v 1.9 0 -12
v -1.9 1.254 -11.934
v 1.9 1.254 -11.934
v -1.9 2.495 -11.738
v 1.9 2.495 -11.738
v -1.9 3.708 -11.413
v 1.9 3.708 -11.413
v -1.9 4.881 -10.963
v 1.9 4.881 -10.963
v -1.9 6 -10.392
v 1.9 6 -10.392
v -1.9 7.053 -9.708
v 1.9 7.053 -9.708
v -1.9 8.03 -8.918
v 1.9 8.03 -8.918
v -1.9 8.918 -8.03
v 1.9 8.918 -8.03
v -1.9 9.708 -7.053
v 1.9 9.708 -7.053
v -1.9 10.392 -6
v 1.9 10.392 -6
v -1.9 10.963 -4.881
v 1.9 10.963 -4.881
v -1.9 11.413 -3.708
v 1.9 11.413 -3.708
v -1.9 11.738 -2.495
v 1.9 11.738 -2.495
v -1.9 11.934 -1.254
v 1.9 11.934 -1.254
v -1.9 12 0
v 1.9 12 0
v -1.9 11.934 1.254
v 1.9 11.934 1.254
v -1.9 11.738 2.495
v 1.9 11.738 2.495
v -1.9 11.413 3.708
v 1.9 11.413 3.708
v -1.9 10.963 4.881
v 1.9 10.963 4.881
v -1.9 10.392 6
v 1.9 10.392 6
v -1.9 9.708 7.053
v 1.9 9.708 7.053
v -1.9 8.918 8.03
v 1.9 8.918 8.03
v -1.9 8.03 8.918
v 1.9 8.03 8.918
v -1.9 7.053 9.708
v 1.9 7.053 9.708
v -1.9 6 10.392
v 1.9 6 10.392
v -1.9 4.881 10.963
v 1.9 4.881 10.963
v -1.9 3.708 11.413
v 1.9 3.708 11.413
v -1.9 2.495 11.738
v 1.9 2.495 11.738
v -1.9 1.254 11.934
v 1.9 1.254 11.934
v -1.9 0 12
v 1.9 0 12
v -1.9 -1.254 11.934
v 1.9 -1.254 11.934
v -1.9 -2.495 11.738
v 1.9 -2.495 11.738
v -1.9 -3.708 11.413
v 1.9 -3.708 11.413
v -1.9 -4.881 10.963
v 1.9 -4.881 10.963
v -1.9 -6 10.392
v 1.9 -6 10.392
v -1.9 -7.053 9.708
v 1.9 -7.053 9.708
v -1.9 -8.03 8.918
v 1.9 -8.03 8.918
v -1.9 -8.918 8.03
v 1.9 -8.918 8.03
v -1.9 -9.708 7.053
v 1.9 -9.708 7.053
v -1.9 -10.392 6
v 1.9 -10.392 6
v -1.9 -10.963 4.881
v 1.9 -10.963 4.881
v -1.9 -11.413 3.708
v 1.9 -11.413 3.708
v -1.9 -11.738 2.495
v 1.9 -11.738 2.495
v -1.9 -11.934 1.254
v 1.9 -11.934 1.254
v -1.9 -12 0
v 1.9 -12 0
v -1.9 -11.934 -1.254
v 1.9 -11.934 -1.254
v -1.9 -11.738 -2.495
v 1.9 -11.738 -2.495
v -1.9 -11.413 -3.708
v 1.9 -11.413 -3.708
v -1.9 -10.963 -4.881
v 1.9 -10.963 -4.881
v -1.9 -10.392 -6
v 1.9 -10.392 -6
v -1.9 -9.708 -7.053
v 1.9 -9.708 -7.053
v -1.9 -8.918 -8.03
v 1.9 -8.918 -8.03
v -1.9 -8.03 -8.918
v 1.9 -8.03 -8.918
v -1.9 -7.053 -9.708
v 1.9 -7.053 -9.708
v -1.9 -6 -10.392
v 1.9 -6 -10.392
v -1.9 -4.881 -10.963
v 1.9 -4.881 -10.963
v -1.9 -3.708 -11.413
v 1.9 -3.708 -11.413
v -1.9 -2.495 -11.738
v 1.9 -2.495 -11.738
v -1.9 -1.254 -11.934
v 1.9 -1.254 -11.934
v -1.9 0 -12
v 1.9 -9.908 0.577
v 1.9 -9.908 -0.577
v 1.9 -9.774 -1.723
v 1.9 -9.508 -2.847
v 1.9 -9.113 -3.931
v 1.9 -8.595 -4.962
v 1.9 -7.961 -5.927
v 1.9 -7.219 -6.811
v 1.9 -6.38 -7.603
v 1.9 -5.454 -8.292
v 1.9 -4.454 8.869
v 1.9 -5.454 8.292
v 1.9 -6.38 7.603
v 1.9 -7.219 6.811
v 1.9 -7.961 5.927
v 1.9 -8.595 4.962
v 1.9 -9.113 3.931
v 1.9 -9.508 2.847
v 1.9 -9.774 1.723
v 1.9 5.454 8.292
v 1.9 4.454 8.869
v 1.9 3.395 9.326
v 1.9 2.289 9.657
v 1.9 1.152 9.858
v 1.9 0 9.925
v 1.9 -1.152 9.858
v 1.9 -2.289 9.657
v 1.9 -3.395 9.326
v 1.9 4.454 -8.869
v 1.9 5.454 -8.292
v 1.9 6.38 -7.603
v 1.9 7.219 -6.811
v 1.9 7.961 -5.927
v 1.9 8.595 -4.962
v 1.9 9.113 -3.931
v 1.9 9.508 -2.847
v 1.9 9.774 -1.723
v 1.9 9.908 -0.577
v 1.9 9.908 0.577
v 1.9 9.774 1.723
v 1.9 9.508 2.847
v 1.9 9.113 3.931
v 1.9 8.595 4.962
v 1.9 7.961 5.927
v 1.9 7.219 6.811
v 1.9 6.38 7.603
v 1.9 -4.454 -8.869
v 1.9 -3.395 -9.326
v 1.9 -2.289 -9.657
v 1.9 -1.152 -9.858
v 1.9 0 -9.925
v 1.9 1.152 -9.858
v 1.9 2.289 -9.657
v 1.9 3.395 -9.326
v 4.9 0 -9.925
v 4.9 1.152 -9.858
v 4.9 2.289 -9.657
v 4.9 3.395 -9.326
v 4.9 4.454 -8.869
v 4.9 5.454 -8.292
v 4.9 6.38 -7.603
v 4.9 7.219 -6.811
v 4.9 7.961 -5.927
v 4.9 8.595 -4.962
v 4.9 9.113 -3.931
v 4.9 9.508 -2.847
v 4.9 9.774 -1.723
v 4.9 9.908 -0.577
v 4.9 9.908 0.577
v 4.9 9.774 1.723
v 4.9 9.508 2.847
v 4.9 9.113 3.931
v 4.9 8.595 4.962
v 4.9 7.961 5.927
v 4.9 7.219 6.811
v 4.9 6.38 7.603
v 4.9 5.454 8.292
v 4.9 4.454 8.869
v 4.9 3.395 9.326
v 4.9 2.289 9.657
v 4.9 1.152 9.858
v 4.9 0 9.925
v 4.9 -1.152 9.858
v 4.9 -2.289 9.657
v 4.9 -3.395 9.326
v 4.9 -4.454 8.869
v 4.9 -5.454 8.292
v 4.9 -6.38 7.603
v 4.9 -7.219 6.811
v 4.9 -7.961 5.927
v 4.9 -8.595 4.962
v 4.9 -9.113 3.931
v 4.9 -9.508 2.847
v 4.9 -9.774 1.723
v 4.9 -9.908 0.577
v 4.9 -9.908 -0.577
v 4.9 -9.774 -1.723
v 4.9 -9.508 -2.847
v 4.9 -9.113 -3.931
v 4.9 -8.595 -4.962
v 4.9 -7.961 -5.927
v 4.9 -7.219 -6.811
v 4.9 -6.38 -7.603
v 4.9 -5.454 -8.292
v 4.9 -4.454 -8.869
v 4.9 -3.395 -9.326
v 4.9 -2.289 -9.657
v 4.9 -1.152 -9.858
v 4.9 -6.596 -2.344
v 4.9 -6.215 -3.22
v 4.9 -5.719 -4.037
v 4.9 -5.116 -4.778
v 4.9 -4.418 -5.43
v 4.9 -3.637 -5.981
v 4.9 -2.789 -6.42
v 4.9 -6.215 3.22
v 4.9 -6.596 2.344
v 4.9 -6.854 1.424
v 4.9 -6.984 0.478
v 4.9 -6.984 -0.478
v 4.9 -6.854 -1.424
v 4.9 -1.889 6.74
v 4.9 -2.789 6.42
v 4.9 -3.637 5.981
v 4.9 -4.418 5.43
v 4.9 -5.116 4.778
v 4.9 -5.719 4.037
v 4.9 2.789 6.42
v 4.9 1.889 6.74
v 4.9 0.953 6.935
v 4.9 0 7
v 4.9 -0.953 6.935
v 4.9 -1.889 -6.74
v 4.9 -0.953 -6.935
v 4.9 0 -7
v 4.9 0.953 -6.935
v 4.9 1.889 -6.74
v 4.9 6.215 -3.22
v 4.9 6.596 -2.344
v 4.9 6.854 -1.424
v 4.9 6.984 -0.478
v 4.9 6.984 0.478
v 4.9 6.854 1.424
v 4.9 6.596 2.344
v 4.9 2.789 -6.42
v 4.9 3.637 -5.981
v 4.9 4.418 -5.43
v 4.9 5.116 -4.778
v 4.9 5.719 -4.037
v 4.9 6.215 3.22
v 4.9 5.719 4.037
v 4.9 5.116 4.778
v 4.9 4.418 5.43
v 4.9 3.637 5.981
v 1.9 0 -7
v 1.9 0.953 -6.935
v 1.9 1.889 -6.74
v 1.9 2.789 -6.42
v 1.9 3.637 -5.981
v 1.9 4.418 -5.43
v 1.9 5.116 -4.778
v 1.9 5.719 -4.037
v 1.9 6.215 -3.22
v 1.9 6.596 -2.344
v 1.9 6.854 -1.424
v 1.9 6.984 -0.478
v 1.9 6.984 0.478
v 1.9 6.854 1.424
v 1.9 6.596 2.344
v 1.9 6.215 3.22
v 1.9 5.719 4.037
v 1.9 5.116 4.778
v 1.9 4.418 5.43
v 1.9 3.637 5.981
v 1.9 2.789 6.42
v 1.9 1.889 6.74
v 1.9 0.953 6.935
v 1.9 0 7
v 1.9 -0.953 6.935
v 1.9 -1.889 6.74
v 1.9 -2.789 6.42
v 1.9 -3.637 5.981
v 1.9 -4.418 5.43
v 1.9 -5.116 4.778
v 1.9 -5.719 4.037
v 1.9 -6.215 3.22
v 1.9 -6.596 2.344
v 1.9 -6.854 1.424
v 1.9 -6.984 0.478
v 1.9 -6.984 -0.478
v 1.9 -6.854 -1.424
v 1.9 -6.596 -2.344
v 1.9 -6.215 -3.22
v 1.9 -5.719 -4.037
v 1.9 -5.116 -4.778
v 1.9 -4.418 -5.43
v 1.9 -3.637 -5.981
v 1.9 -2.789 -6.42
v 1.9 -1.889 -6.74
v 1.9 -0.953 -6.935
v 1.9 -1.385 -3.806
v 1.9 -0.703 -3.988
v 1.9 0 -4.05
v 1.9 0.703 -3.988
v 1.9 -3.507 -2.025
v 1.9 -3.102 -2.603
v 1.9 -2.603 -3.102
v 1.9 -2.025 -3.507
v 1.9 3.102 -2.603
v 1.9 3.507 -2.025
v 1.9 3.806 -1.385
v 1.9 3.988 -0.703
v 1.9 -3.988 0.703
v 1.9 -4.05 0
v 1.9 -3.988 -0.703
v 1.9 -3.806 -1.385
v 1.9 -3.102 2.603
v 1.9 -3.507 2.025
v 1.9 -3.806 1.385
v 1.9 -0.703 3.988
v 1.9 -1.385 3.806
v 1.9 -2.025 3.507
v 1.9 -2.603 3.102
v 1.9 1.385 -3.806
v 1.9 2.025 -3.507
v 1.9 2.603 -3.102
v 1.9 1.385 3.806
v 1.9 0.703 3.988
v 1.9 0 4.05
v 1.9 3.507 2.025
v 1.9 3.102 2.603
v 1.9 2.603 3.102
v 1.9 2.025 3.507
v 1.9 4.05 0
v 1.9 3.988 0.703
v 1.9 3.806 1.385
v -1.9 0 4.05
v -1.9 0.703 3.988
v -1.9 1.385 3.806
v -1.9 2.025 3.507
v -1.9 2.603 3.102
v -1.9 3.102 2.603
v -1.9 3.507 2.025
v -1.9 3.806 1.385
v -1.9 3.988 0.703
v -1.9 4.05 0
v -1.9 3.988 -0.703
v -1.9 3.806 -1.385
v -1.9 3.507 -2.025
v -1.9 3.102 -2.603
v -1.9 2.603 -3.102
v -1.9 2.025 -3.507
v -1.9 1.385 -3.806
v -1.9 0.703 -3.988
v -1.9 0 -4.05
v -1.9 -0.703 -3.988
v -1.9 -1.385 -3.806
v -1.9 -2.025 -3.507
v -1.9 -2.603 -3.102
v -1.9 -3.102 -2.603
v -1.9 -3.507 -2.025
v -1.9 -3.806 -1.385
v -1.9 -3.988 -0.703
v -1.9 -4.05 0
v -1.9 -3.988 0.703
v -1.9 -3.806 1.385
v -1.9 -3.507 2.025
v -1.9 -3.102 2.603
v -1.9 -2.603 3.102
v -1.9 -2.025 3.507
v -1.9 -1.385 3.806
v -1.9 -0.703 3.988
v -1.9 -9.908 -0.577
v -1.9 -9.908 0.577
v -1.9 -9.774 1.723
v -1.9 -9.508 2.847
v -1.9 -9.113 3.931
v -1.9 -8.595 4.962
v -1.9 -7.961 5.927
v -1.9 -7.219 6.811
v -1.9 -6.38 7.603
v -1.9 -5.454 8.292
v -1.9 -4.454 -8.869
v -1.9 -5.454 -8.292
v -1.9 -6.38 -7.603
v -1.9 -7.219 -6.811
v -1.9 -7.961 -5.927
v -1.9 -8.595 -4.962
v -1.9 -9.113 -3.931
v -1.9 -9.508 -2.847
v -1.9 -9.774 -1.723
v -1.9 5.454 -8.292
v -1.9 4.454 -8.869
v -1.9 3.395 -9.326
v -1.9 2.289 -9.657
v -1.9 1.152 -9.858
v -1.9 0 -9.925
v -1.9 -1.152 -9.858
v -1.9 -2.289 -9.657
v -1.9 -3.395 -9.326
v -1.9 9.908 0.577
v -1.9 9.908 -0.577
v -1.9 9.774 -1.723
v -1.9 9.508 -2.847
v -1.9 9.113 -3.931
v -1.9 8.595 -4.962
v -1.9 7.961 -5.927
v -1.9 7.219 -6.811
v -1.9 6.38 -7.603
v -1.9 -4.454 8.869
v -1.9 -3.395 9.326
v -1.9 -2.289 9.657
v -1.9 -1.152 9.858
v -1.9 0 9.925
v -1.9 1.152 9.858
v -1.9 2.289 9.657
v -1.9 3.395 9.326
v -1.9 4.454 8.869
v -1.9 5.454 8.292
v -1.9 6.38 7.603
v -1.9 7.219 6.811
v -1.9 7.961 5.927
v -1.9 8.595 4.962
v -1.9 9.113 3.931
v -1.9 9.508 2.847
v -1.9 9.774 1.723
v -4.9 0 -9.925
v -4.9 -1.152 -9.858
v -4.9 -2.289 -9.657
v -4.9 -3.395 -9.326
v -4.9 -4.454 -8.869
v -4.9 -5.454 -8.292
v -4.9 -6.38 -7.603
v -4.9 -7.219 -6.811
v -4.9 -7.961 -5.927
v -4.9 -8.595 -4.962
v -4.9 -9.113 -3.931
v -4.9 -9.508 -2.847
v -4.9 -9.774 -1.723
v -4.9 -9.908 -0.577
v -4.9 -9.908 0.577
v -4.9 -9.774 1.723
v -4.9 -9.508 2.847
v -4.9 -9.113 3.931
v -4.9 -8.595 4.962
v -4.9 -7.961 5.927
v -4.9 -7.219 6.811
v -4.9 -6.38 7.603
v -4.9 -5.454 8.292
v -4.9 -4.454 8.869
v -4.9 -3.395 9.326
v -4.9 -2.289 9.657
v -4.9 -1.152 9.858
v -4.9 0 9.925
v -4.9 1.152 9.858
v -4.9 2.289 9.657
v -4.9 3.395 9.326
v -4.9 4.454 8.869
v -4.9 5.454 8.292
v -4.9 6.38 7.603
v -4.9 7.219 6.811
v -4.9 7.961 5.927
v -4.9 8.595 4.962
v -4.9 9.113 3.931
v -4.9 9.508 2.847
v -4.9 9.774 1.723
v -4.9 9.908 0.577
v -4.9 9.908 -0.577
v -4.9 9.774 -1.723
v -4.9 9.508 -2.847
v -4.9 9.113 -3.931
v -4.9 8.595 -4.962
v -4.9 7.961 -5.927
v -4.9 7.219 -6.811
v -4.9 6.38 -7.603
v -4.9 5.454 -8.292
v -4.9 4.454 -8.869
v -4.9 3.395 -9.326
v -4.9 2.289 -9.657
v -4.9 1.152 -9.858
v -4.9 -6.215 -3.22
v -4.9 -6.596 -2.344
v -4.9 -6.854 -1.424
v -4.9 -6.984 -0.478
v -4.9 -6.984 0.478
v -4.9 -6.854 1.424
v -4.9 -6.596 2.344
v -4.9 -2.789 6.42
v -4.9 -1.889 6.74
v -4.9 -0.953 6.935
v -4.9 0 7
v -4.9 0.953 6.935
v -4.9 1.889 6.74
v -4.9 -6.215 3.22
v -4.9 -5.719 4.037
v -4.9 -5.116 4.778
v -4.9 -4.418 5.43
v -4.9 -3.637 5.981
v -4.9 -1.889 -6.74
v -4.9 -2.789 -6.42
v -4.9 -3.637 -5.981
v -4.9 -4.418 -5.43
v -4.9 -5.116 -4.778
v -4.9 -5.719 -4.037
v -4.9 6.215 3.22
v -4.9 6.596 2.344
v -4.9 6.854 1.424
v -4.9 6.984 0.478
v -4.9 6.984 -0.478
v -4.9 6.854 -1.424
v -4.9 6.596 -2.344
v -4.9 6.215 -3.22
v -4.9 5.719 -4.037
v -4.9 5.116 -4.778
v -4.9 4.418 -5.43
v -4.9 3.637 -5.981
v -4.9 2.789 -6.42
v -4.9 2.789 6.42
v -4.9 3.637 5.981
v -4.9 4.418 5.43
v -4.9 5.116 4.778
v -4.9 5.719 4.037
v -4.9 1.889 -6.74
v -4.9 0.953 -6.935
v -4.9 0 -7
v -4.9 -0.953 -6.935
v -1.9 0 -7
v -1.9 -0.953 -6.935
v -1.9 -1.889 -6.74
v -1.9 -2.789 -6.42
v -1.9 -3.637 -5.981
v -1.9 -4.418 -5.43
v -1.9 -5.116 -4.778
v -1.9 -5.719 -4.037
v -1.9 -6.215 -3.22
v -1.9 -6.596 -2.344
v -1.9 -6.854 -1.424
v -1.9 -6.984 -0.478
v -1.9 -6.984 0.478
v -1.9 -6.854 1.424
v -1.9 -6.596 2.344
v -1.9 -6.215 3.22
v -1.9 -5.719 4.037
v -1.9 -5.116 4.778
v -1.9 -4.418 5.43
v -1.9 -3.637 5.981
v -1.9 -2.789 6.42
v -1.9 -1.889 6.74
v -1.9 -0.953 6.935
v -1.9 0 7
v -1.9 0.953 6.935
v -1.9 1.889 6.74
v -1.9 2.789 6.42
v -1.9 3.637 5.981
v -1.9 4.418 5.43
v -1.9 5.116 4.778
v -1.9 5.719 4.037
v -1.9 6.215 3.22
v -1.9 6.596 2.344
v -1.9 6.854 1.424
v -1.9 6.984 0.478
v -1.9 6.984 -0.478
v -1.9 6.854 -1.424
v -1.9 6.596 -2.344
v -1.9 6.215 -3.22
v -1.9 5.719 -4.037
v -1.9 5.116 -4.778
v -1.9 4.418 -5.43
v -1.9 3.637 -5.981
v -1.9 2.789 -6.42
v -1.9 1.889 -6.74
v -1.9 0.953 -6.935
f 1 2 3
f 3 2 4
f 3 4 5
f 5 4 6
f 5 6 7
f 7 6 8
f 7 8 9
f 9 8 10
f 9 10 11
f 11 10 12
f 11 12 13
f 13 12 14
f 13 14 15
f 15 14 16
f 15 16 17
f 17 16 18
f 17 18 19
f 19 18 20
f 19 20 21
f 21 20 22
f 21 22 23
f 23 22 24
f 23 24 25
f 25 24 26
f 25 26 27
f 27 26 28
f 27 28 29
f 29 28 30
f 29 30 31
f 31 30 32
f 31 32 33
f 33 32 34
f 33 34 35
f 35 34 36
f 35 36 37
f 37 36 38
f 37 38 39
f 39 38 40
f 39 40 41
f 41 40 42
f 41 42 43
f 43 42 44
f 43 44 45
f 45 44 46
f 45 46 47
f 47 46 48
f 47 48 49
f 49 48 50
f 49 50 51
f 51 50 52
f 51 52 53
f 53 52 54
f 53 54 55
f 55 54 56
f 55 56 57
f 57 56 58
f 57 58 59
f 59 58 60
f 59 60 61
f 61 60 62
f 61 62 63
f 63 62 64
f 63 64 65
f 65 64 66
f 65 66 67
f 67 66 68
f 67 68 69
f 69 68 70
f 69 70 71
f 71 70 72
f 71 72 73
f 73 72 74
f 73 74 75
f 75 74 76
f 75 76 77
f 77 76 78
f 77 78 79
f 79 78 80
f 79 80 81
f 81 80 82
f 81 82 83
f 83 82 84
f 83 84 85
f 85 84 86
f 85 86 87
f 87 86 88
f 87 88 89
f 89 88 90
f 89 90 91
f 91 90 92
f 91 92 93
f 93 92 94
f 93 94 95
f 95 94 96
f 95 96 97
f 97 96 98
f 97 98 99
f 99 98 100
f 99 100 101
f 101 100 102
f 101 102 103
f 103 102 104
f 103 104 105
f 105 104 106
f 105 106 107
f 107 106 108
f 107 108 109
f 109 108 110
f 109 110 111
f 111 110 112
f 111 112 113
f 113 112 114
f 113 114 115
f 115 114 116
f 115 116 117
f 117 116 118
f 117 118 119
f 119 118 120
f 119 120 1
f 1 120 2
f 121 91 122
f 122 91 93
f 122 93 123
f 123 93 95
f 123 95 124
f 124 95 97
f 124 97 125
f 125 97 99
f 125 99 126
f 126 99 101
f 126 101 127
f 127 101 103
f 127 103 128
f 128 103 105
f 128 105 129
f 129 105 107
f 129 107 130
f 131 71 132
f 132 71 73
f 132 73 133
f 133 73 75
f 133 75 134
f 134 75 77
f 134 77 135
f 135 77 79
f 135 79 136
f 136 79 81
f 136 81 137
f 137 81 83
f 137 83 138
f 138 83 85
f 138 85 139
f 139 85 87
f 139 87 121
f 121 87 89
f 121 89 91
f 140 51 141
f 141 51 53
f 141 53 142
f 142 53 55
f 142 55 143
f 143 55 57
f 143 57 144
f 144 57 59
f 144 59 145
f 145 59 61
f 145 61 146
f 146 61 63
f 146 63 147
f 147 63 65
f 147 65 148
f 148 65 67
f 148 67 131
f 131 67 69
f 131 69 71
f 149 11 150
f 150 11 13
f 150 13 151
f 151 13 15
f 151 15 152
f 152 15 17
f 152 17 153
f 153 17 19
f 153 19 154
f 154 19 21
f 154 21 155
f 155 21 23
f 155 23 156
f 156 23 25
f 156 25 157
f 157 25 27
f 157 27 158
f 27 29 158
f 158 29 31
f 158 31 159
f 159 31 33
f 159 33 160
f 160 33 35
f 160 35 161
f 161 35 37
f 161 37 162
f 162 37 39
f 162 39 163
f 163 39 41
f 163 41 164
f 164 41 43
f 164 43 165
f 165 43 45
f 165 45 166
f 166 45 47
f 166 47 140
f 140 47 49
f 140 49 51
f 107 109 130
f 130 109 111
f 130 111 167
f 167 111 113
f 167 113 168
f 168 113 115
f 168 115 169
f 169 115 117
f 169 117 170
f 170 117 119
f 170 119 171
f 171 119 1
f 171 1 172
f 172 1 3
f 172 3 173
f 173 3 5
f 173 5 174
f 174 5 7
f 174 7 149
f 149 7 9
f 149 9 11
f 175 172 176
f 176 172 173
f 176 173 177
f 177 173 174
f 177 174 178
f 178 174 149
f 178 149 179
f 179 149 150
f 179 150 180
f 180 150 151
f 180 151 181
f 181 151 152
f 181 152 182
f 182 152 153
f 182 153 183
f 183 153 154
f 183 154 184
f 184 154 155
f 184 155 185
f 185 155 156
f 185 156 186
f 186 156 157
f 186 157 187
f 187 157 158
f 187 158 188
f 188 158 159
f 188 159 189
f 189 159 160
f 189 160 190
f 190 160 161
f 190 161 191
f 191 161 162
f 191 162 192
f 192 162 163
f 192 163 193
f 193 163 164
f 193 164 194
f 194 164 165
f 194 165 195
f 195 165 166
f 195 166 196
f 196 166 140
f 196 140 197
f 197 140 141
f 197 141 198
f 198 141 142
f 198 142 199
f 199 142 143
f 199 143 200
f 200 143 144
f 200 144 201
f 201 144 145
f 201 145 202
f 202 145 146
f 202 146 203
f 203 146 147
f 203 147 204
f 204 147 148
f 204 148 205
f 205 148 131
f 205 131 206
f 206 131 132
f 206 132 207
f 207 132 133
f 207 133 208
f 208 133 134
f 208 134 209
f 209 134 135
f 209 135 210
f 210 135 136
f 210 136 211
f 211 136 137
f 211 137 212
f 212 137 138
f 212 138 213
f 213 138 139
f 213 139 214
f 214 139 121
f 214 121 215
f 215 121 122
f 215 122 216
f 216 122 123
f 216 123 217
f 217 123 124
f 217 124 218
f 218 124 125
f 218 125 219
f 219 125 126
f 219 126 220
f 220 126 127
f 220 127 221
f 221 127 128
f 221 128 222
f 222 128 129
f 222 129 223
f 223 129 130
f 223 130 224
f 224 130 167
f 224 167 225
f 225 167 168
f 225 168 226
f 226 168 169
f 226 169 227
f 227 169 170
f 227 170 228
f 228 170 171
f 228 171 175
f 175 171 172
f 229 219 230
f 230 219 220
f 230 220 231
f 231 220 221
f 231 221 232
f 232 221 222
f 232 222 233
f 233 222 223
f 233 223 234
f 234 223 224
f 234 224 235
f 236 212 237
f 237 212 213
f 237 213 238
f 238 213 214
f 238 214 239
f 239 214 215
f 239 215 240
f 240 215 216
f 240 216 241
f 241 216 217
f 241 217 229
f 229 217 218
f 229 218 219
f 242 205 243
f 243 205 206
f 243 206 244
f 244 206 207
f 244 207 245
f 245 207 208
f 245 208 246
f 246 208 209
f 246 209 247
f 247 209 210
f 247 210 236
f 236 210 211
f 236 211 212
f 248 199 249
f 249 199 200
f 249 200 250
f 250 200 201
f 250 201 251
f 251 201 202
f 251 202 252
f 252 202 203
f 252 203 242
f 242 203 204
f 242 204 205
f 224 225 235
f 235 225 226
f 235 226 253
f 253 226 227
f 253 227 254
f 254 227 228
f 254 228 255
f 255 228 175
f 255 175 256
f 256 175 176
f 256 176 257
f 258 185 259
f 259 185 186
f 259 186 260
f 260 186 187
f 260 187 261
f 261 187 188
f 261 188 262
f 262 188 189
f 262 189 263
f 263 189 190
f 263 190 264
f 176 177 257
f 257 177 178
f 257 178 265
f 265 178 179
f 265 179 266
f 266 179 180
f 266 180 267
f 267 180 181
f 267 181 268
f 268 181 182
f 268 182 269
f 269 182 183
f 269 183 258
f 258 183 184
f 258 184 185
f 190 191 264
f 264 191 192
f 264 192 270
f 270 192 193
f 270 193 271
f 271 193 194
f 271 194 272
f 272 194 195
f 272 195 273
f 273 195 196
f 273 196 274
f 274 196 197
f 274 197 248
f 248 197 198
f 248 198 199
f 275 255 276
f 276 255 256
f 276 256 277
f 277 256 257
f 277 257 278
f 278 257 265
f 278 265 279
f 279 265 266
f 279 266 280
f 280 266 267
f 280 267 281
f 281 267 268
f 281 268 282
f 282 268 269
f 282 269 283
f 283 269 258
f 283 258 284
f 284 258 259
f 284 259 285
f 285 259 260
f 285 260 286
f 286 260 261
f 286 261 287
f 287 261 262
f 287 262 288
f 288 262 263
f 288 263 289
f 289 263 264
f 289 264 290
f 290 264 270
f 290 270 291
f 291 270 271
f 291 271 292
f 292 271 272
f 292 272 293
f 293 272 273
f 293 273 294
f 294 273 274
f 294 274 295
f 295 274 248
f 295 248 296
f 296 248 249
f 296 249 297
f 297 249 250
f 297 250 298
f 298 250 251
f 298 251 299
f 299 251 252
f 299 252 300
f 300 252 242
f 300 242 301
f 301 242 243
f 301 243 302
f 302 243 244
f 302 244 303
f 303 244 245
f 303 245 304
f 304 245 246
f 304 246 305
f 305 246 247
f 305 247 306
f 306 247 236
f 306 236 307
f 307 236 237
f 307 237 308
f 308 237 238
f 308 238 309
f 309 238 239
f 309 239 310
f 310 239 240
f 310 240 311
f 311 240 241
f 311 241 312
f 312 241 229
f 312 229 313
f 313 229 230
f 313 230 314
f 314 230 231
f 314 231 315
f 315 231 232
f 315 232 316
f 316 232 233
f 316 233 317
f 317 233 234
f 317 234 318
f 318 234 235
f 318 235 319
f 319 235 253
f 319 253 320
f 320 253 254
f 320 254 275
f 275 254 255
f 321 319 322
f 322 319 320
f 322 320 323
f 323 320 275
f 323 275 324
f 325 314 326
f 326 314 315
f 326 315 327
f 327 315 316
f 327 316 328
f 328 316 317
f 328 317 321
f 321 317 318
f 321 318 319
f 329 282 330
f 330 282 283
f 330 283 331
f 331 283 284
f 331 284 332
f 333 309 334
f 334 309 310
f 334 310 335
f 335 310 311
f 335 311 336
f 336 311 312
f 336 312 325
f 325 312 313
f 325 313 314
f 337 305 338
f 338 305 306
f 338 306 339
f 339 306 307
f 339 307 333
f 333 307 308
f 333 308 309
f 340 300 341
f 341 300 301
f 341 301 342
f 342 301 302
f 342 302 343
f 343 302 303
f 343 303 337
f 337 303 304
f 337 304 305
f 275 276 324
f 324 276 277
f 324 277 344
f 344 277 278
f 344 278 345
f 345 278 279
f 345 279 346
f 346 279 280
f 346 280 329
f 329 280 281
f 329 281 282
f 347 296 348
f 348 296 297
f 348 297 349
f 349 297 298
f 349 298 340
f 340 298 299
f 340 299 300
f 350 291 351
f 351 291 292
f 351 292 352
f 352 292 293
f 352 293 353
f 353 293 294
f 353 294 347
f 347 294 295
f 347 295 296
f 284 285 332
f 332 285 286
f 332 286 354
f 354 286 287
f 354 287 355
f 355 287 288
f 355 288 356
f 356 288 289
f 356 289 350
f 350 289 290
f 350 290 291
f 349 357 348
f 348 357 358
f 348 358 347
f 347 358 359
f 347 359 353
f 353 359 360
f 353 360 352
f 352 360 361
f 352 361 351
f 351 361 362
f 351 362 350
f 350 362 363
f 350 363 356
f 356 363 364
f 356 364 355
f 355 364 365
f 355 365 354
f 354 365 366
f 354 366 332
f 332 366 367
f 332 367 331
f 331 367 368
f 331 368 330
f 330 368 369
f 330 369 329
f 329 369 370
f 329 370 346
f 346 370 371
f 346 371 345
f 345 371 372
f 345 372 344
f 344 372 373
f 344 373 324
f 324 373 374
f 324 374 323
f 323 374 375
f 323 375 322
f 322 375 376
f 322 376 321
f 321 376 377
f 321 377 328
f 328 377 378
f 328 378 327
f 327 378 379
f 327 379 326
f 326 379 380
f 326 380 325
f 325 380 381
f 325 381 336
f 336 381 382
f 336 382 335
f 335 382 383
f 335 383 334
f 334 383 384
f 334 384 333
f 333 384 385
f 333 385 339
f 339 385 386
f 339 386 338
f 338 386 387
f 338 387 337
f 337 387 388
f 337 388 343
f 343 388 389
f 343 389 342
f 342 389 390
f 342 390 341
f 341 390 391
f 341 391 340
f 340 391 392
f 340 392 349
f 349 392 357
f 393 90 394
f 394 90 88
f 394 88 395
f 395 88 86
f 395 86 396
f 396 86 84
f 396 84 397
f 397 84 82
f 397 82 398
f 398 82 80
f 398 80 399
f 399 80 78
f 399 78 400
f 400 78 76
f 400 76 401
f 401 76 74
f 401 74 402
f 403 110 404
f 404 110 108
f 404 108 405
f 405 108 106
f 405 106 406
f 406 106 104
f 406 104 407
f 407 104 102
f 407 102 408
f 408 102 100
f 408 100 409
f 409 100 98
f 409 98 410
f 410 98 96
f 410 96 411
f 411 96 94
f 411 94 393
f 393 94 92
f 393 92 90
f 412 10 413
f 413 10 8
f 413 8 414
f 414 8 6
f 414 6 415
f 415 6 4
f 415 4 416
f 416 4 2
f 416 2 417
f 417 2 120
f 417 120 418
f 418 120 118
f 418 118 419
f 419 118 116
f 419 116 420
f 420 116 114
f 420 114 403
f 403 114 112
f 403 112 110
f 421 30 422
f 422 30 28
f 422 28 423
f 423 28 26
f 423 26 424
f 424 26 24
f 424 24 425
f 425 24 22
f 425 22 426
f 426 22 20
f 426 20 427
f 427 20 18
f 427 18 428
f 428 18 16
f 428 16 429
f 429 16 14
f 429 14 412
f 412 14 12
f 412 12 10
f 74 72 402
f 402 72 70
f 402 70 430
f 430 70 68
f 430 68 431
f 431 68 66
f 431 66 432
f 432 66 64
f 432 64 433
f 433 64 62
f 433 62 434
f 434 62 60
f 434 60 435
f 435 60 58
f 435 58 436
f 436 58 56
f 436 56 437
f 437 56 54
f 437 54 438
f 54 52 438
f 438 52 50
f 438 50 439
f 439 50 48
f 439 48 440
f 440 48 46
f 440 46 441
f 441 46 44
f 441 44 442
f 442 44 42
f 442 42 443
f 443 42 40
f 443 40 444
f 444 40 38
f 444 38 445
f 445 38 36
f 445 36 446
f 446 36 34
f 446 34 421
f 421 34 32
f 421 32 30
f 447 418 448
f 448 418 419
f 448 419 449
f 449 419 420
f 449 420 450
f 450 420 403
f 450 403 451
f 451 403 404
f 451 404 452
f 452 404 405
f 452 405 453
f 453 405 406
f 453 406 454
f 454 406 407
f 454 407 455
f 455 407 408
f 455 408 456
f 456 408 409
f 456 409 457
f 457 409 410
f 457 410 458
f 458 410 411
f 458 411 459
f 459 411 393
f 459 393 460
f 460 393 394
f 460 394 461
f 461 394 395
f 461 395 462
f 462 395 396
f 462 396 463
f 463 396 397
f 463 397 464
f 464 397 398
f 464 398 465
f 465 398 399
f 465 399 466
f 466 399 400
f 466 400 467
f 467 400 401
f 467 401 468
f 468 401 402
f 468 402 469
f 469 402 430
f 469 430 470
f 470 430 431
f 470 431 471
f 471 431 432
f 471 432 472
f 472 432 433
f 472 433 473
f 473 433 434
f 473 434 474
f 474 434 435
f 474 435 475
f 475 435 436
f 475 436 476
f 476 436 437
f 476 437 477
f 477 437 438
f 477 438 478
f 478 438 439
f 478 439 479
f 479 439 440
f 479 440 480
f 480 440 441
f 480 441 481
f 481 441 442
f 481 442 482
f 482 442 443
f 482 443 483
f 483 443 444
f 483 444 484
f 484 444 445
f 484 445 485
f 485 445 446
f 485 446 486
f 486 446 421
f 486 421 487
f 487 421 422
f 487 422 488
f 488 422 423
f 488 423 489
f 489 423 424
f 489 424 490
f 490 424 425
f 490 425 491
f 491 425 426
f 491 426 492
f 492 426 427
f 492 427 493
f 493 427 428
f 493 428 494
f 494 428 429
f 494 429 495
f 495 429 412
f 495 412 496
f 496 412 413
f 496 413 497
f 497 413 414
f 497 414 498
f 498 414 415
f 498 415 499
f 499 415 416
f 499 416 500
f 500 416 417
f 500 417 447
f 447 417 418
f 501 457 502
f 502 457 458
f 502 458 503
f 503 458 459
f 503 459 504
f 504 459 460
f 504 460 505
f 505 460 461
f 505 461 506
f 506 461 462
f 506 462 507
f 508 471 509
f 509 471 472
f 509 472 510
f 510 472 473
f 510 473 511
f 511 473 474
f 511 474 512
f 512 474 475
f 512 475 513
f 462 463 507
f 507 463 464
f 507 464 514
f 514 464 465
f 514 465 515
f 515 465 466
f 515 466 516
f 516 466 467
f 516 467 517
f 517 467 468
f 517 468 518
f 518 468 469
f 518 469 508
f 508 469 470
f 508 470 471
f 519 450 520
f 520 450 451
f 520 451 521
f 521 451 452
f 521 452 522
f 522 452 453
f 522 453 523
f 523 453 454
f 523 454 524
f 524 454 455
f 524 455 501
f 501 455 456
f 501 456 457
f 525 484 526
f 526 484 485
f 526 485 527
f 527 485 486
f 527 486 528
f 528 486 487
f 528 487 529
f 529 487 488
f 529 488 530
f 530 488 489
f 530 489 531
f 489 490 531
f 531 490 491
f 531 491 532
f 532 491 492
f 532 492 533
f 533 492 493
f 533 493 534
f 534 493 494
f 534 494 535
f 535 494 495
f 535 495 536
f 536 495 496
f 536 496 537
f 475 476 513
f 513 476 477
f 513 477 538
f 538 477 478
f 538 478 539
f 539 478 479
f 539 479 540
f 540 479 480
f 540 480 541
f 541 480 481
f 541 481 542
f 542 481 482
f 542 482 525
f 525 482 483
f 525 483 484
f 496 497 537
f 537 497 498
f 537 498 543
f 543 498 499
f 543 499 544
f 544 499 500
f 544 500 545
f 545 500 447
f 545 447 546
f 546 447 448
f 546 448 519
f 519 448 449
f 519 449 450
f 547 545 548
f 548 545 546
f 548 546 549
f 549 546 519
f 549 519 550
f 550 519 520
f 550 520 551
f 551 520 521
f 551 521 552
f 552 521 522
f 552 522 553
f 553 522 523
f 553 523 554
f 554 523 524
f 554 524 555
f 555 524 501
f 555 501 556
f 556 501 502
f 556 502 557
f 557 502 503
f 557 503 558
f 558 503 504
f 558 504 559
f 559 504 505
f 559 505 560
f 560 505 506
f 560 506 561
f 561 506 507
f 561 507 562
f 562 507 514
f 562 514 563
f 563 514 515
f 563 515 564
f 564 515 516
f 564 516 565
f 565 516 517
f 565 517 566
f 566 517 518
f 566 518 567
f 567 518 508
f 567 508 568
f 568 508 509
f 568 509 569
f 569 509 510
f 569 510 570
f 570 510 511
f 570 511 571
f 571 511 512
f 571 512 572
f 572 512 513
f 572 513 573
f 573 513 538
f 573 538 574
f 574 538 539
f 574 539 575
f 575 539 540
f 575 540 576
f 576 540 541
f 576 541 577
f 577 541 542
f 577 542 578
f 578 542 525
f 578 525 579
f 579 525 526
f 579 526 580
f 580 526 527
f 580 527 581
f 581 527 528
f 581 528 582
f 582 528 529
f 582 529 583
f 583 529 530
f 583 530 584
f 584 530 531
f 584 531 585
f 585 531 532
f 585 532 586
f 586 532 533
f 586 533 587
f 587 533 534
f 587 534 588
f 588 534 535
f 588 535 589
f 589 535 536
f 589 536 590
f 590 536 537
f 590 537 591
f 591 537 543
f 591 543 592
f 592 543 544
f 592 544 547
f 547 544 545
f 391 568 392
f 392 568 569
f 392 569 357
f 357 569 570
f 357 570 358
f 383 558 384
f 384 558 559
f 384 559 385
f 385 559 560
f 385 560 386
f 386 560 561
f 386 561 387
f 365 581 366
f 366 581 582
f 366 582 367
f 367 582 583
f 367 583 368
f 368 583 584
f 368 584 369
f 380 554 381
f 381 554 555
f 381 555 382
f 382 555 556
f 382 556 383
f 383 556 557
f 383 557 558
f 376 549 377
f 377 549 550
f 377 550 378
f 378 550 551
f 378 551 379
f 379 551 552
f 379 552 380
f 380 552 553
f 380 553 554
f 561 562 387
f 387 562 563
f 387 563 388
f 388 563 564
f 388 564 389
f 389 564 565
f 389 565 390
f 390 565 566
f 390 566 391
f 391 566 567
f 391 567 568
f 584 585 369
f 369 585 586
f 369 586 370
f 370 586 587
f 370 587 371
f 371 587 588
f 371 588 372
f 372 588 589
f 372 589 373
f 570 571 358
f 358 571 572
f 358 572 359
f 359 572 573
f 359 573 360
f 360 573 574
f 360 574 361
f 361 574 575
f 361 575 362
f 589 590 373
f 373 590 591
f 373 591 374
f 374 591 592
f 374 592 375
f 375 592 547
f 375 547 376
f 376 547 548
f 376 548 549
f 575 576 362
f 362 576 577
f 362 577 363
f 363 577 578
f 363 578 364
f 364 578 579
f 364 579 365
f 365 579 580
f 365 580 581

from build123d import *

# Parameters (mm, degrees)
F_8_1_8_1_DURCHMESSER_BOHRUNG1_D = 8.1


with BuildPart() as part:
    # Skizze1 → Rotation1 (revolve)
    with BuildSketch(Plane.XY, mode=Mode.PRIVATE) as rotation1_sk:
        Polygon((0, 0), (0, 12), (1.9, 12), (1.9, 9.925), (4.9, 9.925), (4.9, 7), (1.9, 7), (1.9, 0), align=None)
    rotation1 = revolve(rotation1_sk.sketch.rotate(Axis((0, 0, 0), (-1, 0, 0)), 90), axis=Axis((0, 0, 0), (-1, 0, 0)))

    # Ø8.1 (8.1) Durchmesser Bohrung1 (through all)
    with Locations(Plane.ZY):
        with Locations((0, 0)):
            f_8_1_8_1_durchmesser_bohrung1 = Hole(F_8_1_8_1_DURCHMESSER_BOHRUNG1_D / 2)

    # Spiegeln1: Rotation1, Ø8.1 (8.1) Durchmesser Bohrung1 across plane
    add(rotation1.mirror(Plane(origin=(0, 0, 0), x_dir=(0, 0, 1), z_dir=(1, 0, 0))))
    add(f_8_1_8_1_durchmesser_bohrung1.mirror(Plane(origin=(0, 0, 0), x_dir=(0, 0, 1), z_dir=(1, 0, 0))), mode=Mode.SUBTRACT)


solid = part.part
